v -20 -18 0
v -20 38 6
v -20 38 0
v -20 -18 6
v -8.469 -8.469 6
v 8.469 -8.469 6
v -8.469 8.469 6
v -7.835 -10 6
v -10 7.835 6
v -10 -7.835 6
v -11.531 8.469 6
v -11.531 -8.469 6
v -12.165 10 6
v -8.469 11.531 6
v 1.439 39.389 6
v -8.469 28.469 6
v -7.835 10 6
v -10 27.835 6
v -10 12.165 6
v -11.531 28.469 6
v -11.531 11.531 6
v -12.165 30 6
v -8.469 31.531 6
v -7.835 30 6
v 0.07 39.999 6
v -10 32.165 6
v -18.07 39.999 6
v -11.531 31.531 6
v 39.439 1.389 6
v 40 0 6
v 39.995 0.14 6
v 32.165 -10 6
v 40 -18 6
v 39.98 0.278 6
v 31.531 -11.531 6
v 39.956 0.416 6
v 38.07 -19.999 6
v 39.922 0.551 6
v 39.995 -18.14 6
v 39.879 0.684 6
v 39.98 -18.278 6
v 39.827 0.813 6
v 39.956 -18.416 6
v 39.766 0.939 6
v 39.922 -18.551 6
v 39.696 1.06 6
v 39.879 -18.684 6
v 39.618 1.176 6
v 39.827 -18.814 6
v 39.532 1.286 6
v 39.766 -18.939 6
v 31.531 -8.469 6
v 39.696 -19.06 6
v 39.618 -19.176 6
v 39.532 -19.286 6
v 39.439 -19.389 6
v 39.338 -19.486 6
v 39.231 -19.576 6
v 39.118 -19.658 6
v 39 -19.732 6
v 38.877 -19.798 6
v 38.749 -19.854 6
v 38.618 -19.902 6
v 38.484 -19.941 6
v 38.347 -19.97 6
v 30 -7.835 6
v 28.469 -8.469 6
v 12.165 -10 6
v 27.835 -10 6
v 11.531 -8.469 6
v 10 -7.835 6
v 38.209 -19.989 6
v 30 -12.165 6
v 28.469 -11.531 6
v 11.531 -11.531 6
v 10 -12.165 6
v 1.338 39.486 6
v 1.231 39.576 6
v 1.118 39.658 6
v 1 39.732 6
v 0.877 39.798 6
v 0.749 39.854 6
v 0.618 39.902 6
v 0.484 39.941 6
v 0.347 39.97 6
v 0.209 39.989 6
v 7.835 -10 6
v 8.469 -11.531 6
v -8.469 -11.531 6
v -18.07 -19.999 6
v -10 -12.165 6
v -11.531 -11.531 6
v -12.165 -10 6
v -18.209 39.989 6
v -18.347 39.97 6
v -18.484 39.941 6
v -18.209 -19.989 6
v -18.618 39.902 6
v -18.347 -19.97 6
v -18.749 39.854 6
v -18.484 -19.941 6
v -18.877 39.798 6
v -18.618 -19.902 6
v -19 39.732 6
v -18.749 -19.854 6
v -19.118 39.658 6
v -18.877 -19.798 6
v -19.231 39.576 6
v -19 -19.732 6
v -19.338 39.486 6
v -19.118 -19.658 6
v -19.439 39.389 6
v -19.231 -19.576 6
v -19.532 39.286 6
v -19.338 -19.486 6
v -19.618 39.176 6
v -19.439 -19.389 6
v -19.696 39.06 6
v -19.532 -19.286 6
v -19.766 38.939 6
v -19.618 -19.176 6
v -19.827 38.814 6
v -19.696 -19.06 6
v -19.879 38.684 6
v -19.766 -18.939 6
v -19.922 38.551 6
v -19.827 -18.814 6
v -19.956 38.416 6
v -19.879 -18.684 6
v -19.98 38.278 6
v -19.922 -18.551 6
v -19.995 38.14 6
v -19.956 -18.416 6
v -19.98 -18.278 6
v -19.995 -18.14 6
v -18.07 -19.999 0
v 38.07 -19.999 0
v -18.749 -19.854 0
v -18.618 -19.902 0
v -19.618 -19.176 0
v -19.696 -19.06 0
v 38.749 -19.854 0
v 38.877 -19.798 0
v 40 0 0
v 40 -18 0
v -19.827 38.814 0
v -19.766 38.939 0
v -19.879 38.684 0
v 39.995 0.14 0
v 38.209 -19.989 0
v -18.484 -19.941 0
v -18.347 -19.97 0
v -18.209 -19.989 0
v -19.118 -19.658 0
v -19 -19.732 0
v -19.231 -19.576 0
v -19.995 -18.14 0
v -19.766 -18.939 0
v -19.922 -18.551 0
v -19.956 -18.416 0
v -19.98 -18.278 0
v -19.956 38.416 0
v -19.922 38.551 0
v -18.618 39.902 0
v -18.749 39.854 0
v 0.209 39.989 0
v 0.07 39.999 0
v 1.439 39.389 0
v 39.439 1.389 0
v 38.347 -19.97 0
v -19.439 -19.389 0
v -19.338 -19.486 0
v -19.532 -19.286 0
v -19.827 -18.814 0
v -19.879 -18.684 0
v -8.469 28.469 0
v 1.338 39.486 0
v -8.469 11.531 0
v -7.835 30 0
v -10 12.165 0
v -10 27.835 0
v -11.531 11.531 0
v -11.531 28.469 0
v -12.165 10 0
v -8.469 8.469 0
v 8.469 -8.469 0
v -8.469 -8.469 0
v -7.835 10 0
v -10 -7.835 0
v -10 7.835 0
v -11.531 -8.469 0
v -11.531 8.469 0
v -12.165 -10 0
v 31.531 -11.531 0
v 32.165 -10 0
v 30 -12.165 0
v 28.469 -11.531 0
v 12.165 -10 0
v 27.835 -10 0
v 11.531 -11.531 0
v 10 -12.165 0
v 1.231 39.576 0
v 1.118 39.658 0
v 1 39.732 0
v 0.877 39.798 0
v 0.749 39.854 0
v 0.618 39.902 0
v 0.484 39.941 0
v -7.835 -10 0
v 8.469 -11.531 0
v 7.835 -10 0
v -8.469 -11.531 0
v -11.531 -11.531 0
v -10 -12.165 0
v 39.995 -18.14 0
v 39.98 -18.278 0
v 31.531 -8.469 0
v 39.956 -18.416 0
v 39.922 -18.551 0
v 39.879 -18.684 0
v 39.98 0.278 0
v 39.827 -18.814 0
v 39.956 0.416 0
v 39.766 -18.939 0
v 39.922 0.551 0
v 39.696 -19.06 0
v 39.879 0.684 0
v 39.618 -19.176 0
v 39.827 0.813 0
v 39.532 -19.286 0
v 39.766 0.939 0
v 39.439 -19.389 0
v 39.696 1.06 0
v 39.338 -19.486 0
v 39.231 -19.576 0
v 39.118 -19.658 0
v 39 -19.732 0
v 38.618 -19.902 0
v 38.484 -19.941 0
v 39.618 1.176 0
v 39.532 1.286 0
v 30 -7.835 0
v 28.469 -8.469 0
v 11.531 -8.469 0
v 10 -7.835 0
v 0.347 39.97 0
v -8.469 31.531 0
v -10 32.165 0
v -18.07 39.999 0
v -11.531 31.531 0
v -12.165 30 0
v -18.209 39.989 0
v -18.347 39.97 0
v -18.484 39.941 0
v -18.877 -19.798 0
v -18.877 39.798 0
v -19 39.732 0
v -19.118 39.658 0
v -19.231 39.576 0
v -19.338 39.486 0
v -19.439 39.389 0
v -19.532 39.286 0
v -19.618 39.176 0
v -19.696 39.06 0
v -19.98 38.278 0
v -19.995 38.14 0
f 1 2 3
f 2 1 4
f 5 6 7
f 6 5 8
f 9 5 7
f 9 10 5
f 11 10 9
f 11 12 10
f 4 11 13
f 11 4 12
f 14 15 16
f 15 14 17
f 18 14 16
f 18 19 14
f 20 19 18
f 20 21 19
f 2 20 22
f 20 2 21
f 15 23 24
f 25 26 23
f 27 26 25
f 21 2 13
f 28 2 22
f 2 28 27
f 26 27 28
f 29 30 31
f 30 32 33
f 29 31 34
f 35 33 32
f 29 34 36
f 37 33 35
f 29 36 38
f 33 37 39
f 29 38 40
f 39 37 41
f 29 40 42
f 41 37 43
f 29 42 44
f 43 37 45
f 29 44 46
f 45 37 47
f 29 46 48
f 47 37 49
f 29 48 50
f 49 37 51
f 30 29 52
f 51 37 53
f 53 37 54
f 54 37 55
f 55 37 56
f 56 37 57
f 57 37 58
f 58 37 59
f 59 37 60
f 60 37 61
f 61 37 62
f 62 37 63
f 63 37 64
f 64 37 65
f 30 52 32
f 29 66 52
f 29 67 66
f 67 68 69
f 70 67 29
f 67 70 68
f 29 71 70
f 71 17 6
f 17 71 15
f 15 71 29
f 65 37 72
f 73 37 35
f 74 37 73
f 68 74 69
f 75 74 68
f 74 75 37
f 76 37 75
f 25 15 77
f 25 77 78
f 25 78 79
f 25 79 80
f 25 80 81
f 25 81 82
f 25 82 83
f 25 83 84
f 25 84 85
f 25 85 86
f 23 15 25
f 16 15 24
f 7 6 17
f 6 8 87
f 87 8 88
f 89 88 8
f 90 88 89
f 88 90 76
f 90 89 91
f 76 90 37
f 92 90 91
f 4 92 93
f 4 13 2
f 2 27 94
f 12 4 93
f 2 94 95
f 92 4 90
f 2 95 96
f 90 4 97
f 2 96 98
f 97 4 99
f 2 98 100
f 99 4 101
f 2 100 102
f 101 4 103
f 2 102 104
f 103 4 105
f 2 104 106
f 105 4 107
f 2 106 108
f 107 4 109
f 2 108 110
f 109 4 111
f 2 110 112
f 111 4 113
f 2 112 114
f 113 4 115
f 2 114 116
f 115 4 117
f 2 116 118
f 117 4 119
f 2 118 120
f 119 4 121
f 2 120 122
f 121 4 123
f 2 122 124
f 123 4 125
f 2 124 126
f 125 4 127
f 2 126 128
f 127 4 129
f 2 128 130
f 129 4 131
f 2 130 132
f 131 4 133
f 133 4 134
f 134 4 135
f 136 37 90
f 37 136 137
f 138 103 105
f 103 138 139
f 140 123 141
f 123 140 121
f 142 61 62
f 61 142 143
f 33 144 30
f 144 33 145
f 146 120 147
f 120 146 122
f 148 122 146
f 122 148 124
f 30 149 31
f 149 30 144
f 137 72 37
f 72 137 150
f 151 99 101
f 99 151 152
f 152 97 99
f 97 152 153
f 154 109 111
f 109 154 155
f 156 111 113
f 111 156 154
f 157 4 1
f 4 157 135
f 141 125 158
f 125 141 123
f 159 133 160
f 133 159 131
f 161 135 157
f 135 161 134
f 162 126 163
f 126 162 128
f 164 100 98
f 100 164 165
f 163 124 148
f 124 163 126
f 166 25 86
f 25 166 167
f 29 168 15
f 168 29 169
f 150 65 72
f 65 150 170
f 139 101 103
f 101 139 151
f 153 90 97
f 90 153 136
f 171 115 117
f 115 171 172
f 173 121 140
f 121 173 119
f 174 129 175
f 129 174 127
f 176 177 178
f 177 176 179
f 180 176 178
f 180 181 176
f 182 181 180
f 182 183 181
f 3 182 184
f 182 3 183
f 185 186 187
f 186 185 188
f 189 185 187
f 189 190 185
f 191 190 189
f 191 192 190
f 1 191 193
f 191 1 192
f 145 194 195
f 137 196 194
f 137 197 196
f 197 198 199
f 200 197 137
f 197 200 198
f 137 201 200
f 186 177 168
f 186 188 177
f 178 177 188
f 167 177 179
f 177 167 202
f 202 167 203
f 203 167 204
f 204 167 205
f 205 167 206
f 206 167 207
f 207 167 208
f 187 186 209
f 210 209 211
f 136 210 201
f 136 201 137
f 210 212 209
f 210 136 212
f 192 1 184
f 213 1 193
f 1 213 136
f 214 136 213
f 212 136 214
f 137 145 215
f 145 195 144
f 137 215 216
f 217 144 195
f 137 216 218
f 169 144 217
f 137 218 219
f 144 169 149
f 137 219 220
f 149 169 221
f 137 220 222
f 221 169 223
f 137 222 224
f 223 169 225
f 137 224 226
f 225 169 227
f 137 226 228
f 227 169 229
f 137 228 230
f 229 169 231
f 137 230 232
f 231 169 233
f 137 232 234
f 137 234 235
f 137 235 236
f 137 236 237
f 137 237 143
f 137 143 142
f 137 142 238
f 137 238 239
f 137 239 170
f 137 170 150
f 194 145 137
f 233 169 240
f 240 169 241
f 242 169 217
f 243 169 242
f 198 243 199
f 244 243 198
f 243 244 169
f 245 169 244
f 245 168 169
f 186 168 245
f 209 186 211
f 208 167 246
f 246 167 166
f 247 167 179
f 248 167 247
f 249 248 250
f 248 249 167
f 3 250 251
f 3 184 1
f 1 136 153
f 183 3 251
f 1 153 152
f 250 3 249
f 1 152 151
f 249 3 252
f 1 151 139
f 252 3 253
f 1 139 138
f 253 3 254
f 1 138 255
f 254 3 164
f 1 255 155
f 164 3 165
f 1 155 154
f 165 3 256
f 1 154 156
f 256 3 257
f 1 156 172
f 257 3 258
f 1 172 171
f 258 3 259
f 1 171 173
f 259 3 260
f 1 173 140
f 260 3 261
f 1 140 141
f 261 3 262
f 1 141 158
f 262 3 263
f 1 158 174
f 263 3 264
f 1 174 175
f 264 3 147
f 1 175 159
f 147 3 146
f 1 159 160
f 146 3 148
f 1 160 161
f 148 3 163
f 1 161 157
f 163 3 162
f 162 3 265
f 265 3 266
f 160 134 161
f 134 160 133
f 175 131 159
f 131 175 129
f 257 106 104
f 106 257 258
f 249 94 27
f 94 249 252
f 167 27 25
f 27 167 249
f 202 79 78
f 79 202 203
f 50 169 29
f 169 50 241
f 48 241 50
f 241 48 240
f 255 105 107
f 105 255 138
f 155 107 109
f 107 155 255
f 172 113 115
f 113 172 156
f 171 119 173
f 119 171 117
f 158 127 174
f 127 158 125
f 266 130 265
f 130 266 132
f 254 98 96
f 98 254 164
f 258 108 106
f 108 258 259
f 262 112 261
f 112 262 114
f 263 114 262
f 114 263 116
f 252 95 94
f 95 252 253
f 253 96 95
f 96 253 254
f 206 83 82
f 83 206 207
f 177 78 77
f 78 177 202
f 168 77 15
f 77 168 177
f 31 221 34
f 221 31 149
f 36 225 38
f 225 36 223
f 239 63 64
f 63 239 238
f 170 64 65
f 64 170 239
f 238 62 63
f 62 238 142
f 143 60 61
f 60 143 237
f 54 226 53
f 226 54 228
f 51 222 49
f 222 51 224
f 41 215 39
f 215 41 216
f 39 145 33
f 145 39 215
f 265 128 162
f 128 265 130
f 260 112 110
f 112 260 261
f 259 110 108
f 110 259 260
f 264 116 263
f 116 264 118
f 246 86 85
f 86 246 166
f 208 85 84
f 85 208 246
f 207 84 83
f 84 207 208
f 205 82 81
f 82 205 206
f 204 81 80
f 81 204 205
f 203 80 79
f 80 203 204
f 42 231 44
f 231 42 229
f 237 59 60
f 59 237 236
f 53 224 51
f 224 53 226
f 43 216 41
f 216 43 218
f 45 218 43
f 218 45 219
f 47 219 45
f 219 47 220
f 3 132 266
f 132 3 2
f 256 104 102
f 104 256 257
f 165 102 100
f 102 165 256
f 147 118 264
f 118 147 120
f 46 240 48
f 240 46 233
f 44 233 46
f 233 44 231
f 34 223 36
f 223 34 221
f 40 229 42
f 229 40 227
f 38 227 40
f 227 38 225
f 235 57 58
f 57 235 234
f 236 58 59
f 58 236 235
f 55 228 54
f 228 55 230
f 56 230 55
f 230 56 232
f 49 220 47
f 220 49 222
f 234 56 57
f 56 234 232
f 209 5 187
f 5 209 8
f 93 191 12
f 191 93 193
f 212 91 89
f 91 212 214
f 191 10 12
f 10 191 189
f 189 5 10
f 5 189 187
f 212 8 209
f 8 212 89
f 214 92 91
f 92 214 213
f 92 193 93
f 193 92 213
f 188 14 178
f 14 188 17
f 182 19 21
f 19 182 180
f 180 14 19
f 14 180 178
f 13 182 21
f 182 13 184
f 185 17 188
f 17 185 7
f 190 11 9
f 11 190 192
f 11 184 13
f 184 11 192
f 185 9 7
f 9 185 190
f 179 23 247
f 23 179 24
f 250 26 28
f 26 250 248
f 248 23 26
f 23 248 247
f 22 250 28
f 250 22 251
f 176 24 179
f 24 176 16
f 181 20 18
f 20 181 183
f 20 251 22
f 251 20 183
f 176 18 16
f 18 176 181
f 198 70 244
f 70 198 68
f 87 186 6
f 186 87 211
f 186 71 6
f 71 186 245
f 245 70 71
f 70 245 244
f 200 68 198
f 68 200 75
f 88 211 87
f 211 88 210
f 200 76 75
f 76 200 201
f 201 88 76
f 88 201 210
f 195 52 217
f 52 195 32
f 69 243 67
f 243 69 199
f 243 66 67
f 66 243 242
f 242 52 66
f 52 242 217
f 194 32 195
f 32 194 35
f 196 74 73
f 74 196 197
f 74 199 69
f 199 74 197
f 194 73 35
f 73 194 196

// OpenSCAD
// file: polyhole.scad
// The Cylinder is dead! Long live the Cylinder!
// A module for a polyhole by radius, based on Nophead's work.

module polyhole(h, r, cent = false)
{
    n = max(round(4 * r), 3);
    cylinder(h = h, r = r / cos(180 / n), $fn = n, center = cent);
}
// main file
// Corner brace

use<polyhole.scad>

CornerBrace();

module CornerBrace()
{
    difference()
    {
        hull()
        {
            translate([-20+2, -20+2, 0])
                cylinder(h = 6, r = 2, $fn = 90);
            translate([-20+2, 40-2, 0])
                cylinder(h = 6, r = 2, $fn = 90);
            translate([40-2, -20+2, 0])
                cylinder(h = 6, r = 2, $fn = 90);
            translate([0, 40-2, 0])
                cylinder(h = 6, r = 2, $fn = 90);
            translate([40-2, 0, 0])
                cylinder(h = 6, r = 2, $fn = 90);
        }
        translate([-10, -10, 0])
            polyhole(6, 2);
        translate([-10, 10, 0])
            polyhole(6, 2);
        translate([-10, 30, 0])
            polyhole(6, 2);
        translate([10, -10, 0])
            polyhole(6, 2);
        translate([30, -10, 0])
            polyhole(6, 2);
    }
}
